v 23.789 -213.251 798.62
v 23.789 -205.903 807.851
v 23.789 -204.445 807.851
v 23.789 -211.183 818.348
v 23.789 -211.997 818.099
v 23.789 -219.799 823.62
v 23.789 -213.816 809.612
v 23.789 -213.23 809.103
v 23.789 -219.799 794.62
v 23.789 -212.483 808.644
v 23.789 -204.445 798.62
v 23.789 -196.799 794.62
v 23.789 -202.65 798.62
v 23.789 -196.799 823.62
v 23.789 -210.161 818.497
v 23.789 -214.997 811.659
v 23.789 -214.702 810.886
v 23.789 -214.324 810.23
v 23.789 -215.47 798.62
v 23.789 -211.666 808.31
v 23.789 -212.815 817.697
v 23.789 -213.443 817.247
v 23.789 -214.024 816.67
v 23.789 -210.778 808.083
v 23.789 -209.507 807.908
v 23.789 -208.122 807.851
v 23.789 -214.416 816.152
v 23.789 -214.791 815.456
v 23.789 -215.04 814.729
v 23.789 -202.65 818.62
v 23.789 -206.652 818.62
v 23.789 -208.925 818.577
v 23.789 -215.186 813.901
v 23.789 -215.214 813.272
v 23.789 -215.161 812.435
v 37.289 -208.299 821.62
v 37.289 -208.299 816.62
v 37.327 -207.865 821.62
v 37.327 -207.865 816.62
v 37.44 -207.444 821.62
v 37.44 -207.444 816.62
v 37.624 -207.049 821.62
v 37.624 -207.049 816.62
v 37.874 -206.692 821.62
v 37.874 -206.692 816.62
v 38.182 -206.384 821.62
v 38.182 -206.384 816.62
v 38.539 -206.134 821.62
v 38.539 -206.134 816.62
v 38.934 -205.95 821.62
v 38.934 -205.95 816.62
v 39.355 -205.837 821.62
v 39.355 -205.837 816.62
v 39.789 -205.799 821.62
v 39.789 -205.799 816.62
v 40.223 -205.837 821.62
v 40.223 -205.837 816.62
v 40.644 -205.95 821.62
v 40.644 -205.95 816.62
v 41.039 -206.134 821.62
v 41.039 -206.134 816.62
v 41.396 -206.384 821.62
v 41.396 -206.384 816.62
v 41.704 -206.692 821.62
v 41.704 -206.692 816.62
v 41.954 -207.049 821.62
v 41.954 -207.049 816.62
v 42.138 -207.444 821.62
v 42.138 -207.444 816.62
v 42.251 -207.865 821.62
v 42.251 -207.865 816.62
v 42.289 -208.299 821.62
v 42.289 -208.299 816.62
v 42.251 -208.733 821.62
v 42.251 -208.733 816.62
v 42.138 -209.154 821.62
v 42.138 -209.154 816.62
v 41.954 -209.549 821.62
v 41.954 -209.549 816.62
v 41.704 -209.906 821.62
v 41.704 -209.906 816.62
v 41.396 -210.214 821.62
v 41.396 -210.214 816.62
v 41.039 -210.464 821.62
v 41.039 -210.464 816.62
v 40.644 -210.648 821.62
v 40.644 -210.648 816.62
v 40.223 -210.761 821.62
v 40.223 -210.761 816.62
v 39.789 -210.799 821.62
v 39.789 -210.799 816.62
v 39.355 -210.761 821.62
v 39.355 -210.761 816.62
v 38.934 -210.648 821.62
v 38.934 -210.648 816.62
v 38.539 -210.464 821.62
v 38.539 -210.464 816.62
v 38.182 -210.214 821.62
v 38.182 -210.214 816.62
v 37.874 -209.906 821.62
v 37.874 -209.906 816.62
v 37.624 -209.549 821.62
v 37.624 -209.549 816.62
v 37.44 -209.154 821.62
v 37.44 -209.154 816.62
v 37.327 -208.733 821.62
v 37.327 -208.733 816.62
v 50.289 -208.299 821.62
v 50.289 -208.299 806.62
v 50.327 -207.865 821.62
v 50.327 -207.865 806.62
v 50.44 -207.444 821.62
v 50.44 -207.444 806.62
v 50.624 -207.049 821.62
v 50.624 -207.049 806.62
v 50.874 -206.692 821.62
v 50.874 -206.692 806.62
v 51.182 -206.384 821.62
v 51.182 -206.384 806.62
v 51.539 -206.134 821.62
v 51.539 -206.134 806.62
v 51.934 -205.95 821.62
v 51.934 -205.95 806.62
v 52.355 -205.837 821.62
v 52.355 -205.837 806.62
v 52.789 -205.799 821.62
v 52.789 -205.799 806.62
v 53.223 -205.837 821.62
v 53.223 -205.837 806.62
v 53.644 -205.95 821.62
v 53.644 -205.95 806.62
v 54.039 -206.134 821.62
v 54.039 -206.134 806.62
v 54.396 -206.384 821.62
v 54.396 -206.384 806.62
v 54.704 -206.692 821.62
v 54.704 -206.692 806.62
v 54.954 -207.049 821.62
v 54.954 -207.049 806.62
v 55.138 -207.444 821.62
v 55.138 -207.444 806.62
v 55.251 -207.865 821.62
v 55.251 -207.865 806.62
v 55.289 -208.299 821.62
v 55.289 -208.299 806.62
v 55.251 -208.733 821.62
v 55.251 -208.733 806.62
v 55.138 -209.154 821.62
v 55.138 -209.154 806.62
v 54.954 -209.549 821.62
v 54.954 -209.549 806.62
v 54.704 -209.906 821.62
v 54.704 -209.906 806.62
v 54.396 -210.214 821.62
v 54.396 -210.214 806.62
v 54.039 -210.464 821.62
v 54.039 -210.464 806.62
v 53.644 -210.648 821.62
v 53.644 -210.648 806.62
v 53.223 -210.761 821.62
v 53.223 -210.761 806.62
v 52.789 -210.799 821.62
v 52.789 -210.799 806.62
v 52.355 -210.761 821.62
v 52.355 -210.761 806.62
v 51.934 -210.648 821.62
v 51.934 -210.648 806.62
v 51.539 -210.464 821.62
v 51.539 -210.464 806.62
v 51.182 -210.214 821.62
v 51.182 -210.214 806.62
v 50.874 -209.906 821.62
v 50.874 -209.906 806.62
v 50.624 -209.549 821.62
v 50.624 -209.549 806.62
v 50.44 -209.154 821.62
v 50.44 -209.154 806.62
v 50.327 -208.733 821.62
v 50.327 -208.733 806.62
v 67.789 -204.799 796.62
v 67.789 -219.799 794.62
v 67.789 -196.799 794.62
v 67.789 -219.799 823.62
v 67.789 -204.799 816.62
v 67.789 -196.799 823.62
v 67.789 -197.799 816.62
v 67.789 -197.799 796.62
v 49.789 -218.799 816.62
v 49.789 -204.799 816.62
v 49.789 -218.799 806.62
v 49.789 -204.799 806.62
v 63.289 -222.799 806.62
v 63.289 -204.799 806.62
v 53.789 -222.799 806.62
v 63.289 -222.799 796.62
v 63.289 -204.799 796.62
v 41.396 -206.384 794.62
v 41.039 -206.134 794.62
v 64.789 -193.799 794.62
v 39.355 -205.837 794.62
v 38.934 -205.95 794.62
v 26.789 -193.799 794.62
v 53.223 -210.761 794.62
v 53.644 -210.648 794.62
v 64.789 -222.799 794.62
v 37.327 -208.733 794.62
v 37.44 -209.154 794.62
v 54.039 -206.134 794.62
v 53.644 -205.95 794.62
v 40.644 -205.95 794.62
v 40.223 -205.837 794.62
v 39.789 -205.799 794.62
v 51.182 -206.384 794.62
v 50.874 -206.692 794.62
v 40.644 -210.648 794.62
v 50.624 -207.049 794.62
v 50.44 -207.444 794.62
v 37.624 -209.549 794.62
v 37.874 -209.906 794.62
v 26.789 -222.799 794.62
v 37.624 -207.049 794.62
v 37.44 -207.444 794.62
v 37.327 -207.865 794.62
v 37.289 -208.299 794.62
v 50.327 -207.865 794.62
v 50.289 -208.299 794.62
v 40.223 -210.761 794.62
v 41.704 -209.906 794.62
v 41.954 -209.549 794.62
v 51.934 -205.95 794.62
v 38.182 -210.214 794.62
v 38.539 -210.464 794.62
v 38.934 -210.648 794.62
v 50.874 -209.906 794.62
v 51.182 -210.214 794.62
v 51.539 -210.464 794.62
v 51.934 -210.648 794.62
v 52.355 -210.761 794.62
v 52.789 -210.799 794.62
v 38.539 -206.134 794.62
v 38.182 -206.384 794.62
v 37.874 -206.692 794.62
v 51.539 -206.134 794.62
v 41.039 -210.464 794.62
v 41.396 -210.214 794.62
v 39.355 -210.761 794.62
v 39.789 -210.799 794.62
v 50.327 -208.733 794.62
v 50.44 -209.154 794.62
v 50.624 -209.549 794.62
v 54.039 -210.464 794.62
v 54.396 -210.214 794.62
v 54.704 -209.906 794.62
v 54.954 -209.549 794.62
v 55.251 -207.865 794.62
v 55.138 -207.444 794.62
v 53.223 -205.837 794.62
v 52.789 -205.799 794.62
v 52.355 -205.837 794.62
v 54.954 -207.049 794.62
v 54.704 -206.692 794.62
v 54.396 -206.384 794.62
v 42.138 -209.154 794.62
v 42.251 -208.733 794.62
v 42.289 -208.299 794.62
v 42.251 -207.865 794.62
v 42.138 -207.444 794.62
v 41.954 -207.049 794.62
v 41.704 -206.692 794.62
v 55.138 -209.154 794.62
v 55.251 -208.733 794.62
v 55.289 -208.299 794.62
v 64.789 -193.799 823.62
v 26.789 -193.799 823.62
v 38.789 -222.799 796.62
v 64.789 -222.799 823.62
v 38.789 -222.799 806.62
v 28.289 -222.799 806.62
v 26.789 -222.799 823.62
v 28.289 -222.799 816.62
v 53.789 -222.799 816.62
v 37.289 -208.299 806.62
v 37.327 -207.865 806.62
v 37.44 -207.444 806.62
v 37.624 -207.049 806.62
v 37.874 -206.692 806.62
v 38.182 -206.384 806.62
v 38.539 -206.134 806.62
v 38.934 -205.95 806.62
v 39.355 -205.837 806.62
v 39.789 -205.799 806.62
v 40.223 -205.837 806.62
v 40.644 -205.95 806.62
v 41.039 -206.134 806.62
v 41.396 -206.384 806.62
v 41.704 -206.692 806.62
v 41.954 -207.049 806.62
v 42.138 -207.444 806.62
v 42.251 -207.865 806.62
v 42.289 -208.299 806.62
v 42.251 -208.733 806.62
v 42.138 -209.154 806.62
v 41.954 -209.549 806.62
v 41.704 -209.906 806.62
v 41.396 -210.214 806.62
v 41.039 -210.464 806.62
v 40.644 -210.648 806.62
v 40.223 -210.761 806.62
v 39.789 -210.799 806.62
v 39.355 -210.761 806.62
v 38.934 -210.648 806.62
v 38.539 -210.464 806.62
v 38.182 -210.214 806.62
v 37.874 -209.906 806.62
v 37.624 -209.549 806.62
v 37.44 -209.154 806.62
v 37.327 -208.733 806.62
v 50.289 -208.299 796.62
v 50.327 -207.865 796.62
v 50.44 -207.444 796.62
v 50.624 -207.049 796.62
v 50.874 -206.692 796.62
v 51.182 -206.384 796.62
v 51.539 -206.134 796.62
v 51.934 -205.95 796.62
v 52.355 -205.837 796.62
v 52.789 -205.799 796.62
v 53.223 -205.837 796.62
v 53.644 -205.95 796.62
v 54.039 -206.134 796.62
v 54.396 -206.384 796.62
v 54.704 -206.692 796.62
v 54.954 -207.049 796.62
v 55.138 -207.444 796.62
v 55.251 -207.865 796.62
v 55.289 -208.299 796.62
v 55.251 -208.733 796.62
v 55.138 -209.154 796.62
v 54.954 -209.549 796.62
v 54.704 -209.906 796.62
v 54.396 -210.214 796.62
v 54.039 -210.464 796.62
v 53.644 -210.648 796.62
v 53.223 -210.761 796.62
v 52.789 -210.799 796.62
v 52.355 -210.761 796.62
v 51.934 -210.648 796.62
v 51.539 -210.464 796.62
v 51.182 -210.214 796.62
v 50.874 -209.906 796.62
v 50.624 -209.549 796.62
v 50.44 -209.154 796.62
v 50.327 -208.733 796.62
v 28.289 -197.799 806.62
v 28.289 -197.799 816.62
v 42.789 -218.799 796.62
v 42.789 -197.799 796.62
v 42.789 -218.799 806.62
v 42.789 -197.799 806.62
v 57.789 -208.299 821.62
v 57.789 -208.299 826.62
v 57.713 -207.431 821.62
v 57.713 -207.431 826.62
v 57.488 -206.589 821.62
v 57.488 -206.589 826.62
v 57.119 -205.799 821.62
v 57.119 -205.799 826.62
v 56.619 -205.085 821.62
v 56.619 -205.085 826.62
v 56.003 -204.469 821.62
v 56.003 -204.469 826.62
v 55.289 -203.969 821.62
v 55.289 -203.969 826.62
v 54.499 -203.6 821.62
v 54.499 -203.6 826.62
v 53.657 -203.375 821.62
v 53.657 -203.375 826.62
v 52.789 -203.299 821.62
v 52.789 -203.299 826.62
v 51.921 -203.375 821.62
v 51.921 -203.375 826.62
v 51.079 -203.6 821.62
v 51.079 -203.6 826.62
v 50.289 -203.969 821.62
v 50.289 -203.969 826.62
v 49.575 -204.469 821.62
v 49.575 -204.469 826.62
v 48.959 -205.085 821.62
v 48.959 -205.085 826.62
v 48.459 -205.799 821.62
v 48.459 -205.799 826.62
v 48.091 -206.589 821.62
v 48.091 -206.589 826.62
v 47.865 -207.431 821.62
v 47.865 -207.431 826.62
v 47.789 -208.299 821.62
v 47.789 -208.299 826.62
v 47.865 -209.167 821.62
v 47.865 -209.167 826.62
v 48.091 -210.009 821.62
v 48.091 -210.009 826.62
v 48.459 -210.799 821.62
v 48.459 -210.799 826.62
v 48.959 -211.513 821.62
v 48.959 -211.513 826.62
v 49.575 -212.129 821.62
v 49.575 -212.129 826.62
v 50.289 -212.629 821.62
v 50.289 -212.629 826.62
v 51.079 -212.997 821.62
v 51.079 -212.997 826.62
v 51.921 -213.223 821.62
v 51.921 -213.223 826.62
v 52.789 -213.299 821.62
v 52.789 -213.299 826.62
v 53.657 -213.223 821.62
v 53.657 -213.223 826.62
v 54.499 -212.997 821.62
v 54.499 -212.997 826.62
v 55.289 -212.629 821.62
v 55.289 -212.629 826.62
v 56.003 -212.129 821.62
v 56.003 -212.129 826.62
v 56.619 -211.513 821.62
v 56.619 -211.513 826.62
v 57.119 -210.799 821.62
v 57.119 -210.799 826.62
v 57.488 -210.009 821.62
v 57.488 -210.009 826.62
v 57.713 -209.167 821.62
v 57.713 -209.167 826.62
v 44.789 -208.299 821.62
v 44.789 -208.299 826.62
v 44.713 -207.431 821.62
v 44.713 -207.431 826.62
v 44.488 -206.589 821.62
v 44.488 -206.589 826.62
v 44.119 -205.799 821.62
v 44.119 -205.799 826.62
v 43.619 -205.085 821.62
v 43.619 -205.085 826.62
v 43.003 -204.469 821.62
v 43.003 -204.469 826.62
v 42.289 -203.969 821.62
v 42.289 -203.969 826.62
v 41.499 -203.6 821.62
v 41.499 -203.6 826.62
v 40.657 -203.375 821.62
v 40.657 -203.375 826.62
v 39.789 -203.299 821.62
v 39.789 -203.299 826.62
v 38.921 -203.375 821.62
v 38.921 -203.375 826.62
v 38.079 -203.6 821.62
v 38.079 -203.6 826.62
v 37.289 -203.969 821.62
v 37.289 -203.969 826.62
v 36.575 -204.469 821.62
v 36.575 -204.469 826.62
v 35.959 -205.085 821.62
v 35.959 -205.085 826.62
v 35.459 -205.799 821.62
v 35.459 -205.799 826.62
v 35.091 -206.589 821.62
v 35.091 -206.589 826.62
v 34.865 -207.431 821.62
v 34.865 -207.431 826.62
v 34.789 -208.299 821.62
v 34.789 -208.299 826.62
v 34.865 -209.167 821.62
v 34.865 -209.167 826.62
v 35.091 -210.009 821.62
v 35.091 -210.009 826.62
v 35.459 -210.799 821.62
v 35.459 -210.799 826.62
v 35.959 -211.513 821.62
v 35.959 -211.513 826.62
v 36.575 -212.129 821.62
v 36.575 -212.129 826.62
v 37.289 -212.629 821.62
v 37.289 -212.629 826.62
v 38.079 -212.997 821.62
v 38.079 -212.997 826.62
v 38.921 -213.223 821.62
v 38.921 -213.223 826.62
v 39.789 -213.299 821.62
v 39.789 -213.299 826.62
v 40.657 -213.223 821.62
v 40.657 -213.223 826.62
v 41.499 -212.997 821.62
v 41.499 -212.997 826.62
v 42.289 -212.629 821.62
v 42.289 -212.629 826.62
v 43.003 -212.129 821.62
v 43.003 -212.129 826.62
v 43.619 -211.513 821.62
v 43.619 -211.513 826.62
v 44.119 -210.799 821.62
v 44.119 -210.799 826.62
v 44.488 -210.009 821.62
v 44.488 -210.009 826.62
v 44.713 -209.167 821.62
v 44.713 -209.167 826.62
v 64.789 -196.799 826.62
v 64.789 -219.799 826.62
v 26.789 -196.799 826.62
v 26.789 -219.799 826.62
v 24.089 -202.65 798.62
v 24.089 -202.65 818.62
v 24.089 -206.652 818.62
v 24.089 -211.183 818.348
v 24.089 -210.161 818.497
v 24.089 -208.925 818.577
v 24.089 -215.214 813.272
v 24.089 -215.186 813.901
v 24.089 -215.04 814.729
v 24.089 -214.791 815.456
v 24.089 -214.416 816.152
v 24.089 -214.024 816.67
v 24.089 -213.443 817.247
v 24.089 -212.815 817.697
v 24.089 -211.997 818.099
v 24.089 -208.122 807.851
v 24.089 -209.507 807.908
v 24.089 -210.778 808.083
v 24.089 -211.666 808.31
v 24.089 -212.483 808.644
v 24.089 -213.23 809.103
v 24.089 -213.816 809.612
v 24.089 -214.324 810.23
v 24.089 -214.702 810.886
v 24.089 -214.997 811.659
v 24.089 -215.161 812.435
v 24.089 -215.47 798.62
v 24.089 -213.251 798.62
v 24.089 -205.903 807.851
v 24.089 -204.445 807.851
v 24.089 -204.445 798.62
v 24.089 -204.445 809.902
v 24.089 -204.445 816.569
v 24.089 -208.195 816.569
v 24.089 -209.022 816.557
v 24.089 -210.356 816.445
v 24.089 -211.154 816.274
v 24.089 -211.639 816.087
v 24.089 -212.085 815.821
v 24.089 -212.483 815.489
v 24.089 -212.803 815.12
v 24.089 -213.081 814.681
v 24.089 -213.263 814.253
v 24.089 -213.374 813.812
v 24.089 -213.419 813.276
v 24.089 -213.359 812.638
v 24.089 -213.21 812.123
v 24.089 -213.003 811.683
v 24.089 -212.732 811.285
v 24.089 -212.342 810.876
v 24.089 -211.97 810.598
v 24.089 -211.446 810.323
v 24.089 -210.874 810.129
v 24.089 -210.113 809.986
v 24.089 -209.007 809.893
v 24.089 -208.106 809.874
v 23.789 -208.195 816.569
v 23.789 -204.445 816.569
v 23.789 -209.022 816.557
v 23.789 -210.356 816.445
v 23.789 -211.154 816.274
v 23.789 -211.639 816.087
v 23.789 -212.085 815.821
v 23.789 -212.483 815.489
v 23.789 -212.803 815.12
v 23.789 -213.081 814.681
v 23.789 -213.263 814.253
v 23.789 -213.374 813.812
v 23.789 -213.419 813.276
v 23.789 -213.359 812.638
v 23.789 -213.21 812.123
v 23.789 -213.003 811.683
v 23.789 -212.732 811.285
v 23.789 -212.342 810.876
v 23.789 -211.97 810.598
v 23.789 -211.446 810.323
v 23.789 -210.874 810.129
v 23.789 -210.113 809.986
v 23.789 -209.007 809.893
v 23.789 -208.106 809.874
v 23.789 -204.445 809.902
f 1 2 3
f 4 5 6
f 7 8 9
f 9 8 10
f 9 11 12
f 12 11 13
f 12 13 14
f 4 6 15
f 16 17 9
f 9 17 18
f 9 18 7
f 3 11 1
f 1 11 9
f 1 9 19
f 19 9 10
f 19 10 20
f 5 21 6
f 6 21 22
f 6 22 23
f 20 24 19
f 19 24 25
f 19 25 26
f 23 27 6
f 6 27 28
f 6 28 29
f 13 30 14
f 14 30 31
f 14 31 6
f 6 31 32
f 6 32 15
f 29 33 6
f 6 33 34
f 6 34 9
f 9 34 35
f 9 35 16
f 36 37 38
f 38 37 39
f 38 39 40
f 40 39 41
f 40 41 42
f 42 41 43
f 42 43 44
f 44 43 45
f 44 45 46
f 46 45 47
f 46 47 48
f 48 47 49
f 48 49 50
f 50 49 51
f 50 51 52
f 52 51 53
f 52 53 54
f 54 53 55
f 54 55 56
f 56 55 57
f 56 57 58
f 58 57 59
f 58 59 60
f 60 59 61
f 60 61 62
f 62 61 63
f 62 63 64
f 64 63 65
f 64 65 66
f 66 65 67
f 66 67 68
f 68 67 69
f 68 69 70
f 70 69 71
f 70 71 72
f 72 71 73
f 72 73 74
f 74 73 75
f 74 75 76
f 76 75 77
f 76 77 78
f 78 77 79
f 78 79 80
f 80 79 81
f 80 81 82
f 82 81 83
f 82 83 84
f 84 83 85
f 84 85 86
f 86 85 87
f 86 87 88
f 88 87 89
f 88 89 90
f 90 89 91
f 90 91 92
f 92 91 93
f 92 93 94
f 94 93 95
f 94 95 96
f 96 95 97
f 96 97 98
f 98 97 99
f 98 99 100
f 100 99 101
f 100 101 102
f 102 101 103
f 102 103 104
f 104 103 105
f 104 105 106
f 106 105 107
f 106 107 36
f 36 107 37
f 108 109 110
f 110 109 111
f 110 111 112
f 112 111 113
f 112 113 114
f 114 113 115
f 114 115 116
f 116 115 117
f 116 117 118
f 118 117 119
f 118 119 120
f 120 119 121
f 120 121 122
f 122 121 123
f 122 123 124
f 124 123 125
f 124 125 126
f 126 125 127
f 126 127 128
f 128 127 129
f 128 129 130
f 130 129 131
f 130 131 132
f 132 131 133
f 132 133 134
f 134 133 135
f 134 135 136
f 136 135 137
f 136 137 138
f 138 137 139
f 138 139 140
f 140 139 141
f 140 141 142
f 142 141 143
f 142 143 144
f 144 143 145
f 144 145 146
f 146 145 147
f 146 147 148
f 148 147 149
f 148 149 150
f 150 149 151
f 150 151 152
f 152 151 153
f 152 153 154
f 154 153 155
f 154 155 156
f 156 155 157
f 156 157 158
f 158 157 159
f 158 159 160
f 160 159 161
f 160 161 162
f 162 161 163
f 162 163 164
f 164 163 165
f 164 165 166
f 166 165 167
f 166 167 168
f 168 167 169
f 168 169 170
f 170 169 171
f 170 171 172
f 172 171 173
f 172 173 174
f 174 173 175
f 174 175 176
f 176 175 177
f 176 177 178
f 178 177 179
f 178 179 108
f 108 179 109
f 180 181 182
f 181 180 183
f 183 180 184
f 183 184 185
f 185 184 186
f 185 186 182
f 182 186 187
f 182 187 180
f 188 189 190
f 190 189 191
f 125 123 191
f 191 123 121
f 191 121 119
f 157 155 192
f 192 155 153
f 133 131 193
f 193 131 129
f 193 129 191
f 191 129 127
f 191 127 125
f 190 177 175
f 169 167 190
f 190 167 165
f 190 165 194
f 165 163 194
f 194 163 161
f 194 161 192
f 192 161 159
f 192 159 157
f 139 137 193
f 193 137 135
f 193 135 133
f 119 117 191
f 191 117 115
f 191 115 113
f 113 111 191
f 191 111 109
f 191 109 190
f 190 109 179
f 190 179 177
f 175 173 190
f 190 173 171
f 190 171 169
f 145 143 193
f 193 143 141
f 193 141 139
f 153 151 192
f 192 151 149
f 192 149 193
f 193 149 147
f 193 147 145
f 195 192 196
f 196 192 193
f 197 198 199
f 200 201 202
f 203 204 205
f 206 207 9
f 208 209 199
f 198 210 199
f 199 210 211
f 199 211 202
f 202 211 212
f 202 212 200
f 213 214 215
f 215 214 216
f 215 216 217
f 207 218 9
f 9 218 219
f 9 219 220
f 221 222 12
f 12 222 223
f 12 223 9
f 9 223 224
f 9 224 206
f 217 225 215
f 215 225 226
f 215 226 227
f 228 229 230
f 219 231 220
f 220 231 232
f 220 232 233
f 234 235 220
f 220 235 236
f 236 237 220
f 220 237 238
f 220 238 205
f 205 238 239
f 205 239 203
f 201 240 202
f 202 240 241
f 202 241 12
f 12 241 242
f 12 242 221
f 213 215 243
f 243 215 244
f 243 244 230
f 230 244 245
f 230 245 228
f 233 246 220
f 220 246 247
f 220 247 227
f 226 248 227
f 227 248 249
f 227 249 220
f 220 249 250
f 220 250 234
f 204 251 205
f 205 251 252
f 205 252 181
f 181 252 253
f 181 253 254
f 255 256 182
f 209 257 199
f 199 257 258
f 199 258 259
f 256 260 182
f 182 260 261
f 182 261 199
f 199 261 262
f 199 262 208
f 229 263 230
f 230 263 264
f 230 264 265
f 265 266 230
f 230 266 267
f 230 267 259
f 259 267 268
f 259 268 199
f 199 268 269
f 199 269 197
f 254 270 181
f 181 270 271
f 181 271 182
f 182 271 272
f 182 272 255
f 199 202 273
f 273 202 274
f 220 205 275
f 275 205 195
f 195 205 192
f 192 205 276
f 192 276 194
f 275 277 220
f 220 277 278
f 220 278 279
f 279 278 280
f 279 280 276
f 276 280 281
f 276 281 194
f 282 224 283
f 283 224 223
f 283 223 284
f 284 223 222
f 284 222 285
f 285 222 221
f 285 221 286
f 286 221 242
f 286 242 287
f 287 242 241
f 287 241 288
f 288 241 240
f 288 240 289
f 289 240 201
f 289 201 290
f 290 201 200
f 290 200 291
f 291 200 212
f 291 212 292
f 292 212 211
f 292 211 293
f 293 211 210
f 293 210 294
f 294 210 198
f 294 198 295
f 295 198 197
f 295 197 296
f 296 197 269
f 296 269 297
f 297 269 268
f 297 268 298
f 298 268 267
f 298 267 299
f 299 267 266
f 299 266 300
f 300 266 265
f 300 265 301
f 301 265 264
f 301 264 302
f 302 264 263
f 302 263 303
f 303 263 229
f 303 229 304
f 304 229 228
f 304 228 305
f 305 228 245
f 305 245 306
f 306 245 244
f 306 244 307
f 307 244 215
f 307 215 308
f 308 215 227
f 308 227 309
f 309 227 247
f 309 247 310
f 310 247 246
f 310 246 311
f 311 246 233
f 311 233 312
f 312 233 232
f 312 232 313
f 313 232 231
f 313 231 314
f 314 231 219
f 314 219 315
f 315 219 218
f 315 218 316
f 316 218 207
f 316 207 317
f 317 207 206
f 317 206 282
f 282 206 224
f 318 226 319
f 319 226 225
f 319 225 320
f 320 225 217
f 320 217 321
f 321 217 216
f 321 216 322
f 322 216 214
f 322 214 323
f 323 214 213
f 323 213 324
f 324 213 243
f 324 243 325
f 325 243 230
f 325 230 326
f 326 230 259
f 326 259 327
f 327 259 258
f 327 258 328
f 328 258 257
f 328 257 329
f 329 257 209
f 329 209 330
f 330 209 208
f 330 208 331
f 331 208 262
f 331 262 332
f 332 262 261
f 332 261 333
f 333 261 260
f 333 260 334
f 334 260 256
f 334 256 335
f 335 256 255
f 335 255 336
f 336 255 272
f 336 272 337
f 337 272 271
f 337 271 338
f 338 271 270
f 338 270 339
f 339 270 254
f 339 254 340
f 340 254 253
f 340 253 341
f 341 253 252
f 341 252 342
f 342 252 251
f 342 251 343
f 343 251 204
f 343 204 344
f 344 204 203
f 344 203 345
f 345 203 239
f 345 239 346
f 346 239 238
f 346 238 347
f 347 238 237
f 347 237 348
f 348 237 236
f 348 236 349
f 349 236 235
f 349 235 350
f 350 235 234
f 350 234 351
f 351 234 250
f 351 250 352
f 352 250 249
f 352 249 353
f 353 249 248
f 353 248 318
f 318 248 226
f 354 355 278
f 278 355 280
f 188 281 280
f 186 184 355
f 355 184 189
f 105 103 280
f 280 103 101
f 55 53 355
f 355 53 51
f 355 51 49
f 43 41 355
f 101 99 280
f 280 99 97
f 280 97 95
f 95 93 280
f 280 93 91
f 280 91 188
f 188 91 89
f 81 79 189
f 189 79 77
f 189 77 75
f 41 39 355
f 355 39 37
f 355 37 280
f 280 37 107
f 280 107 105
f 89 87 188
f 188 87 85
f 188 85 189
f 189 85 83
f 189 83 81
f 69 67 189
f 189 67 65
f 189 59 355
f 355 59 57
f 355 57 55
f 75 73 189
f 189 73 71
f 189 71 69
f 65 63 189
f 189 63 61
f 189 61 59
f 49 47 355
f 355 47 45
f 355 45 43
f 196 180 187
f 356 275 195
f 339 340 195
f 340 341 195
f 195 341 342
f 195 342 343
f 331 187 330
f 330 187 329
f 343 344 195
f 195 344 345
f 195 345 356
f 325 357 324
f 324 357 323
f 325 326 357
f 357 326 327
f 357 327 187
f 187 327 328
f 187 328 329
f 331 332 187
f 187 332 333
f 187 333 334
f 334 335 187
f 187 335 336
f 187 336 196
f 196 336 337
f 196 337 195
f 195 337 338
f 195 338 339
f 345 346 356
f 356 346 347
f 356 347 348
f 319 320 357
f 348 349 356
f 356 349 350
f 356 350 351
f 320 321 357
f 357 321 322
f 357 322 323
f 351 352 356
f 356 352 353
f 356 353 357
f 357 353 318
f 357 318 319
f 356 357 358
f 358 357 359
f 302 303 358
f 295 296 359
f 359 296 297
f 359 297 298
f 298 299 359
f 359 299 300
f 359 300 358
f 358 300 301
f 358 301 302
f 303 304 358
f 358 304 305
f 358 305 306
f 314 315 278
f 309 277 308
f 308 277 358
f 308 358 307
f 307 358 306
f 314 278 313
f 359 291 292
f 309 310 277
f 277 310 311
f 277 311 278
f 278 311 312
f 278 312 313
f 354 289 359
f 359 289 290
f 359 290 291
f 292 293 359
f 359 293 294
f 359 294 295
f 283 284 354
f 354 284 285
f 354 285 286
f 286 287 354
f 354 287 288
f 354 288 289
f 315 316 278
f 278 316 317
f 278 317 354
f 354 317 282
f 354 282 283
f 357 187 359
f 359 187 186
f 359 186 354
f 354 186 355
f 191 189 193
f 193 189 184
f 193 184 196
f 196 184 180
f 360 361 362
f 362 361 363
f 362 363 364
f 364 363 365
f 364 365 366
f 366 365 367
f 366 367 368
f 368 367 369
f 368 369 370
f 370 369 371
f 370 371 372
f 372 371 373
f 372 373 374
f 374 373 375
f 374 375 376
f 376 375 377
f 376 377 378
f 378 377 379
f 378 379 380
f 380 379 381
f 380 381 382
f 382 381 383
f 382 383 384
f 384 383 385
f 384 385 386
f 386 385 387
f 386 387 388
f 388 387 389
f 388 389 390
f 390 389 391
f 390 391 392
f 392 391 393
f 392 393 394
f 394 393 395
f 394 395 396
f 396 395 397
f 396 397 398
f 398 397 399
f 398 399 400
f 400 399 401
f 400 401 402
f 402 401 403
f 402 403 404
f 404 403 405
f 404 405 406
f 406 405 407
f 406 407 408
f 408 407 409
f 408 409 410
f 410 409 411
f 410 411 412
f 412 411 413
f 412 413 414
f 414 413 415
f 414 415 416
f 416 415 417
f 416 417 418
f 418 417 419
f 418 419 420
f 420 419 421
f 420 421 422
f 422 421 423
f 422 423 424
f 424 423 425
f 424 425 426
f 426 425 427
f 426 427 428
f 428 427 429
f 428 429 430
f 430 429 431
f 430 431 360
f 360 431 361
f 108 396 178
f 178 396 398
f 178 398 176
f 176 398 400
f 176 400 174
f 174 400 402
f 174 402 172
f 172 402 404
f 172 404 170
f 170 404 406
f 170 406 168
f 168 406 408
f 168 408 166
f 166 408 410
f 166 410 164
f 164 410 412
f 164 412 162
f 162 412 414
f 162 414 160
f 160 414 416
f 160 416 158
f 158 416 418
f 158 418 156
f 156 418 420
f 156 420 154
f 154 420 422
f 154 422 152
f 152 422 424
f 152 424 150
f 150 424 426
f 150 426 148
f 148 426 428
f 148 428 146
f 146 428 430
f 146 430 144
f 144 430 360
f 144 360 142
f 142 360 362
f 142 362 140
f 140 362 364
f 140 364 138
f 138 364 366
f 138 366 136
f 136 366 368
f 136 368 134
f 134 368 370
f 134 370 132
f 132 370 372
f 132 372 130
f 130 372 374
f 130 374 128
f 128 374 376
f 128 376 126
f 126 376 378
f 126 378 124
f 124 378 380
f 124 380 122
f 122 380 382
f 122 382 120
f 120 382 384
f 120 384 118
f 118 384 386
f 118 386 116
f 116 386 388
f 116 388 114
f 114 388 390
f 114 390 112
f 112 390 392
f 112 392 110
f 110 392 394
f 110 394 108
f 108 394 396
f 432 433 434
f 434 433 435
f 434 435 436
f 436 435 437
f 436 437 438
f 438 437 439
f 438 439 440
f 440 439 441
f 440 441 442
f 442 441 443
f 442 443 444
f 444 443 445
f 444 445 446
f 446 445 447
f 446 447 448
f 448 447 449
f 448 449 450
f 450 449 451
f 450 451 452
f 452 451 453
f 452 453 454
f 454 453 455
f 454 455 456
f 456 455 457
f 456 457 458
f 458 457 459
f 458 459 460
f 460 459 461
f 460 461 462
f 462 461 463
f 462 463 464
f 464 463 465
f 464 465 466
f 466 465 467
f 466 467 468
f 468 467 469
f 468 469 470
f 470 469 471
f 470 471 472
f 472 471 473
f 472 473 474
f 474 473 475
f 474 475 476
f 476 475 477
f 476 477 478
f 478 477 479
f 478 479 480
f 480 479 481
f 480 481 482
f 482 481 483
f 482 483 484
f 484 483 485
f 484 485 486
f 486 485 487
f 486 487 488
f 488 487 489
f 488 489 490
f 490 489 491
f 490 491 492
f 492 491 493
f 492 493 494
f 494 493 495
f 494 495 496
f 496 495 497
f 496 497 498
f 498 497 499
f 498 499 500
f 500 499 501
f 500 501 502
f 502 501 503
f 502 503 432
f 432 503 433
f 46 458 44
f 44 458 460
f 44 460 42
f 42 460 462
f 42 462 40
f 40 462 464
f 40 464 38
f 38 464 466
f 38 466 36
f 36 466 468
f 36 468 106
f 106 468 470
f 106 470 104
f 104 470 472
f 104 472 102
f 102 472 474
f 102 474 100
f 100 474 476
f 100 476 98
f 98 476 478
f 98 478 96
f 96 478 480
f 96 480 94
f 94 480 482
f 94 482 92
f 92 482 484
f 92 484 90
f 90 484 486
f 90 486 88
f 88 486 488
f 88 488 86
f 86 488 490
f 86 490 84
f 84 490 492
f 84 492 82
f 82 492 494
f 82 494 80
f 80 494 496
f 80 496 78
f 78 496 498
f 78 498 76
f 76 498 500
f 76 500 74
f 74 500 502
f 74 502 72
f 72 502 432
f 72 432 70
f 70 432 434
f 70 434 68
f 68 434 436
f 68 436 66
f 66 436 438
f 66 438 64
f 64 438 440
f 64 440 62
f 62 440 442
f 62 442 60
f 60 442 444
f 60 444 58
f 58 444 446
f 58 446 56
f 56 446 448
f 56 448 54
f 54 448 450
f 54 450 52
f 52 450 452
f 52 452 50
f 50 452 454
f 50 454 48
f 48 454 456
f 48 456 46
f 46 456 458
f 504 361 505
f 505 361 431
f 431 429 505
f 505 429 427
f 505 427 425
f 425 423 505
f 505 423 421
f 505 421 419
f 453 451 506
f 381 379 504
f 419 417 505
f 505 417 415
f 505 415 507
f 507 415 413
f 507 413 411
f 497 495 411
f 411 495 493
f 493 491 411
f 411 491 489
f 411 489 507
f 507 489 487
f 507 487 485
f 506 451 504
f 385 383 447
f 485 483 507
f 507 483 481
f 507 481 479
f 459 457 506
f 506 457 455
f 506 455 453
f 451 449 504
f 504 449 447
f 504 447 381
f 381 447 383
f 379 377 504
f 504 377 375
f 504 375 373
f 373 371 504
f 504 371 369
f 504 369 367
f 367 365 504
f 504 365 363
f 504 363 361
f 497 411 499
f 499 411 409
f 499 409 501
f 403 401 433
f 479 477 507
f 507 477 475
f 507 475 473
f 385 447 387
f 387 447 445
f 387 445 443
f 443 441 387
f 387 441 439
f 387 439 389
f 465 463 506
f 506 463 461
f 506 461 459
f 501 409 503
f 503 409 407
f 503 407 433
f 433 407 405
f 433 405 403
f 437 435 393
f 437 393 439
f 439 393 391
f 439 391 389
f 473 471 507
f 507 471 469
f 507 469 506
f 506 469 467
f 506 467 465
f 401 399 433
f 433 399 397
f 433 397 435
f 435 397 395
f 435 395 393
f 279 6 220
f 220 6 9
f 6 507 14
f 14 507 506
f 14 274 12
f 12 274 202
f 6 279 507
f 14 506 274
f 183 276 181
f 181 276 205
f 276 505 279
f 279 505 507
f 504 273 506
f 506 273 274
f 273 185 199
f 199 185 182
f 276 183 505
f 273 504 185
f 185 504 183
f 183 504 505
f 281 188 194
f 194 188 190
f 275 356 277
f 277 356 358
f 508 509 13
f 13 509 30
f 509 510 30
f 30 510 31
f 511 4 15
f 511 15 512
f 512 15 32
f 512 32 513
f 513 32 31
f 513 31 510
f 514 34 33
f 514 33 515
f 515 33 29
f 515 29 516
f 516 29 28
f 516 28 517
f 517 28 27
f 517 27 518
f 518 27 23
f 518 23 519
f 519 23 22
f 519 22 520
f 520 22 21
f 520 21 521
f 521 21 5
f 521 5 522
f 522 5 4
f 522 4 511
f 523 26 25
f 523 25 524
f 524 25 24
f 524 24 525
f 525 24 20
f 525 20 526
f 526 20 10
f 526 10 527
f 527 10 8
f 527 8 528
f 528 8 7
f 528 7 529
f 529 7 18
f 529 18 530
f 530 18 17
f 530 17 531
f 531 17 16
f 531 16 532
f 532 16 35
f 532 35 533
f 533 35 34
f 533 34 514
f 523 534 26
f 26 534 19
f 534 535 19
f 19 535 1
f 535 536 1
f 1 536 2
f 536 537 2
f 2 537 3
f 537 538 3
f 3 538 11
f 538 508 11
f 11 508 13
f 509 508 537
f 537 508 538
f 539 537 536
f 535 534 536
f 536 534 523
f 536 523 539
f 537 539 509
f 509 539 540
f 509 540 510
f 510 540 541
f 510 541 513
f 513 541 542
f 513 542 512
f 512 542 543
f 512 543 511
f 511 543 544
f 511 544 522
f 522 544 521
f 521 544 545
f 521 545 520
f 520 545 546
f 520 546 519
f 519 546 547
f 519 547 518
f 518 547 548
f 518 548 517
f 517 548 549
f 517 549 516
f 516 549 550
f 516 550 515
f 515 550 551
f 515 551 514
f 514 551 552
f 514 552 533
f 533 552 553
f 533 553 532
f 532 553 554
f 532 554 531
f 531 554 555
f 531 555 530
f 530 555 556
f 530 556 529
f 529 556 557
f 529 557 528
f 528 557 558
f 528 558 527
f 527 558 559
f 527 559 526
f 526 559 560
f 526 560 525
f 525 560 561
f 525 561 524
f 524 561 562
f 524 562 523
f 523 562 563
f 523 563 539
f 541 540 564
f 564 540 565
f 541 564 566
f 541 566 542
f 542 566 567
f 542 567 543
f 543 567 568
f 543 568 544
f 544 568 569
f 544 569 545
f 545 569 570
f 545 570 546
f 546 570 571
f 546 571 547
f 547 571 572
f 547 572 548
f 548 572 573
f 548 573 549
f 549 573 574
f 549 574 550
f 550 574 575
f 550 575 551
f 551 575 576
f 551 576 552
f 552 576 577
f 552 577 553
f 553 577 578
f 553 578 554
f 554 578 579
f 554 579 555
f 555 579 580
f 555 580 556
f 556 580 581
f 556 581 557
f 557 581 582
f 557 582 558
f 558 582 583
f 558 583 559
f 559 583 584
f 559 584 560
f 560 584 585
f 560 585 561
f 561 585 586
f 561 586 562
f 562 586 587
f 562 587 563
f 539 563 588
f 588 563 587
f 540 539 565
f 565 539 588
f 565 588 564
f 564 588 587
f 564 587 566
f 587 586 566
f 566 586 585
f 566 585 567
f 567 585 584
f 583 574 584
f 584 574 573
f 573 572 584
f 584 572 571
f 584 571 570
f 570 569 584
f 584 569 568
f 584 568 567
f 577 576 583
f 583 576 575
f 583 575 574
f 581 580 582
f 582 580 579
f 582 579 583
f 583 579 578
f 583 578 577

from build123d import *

# Parameters (mm, degrees)
SKETCH1_W           = 44
SKETCH1_H           = 29
SKETCH1_R           = 2.5
BOSS_EXTRUDE1_DEPTH = 30
CUT_EXTRUDE1_DEPTH  = 25
SKETCH3_W           = 20
SKETCH3_H           = 7
CUT_EXTRUDE2_DEPTH  = 29
SKETCH4_R           = 5
CUT_EXTRUDE3_DEPTH  = 3
THICKEN1_T1         = 2
CHAMFER1_SIZE       = 3
CHAMFER2_SIZE       = 4
CUT_EXTRUDE4_DEPTH  = 0.3


with BuildPart() as part:
    # Sketch1 → Boss-Extrude1 (new body)
    with BuildSketch(Plane.XY.offset(794.620141885)):
        with Locations((45.789156386, -208.298939869)):
            Rectangle(SKETCH1_W, SKETCH1_H)
        with Locations((52.789156386, -208.298939869)):
            Circle(SKETCH1_R, mode=Mode.SUBTRACT)
        with Locations((39.789156386, -208.298939869)):
            Circle(SKETCH1_R, mode=Mode.SUBTRACT)
    extrude(amount=BOSS_EXTRUDE1_DEPTH)

    # Sketch2 → Cut-Extrude1 (cut)
    with BuildSketch(Plane.XZ.offset(222.798939869)):
        Polygon((28.289156386, 816.620141885), (49.789156386, 816.620141885), (49.789156386, 806.620141885), (63.289156386, 806.620141885), (63.289156386, 796.620141885), (42.789156386, 796.620141885), (42.789156386, 806.620141885), (28.289156386, 806.620141885), align=None)
    extrude(amount=-CUT_EXTRUDE1_DEPTH, mode=Mode.SUBTRACT)

    # Sketch3 → Cut-Extrude2 (cut)
    with BuildSketch(Plane(origin=(42.789156386, 0, 0), x_dir=(0, 0, -1), z_dir=(1, 0, 0))):
        with Locations((-806.620141885, -201.298939869)):
            Rectangle(SKETCH3_W, SKETCH3_H)
    extrude(amount=CUT_EXTRUDE2_DEPTH, mode=Mode.SUBTRACT)

    # Sketch4 → Cut-Extrude3 (cut)
    with BuildSketch(Plane.XY.offset(824.620141885)):
        with Locations((39.789156386, -208.298939869)):
            Circle(SKETCH4_R)
        with Locations((52.789156386, -208.298939869)):
            Circle(SKETCH4_R)
    extrude(amount=-CUT_EXTRUDE3_DEPTH, mode=Mode.SUBTRACT)

    # Surface-Offset1: a surface, a copy of 1 face of the part
    surface_offset1_1 = part.part.faces().sort_by_distance((45.718963888, -208.298939869, 824.620141885))[0]
    add(Solid.thicken(surface_offset1_1, THICKEN1_T1))

    # Chamfer1
    chamfer1_edges = [part.edges().sort_by_distance(p)[0] for p in [
        (67.789156386, -222.798939869, 810.620141885),
        (23.789156386, -222.798939869, 810.620141885),
        (23.789156386, -193.798939869, 810.620141885),
        (67.789156386, -193.798939869, 810.620141885),
        (67.789156386, -208.298939869, 826.620141885),
        (45.789156386, -193.798939869, 826.620141885),
        (23.789156386, -208.298939869, 826.620141885),
        (45.789156386, -222.798939869, 826.620141885),
    ]]
    chamfer(chamfer1_edges, length=CHAMFER1_SIZE)

    # Chamfer2
    chamfer2_edges = [part.edges().sort_by_distance(p)[0] for p in [
        (42.789156386, -222.798939869, 801.620141885),
        (49.789156386, -222.798939869, 811.620141885),
    ]]
    chamfer(chamfer2_edges, length=CHAMFER2_SIZE)

    # Sketch5 → Cut-Extrude4 (cut)
    with BuildSketch(Plane.ZY.offset(-23.789156386)):
        with BuildLine():
            Line((818.620141885, -202.649682189), (818.620141885, -206.652086035))
            add(Edge.make_bspline(
                [(818.620141885, -206.652086035), (818.619252822, -206.919178198), (818.617545723, -207.432024737), (818.608027078, -208.166729139), (818.580745045, -208.834312551), (818.557267425, -209.434425918), (818.514456332, -209.967058232), (818.473538348, -210.433842751), (818.419974572, -210.832629594), (818.370229298, -211.074034458), (818.347705987, -211.183336035)],
                knots=[0, 0, 0, 0, 1.410062039, 2.707475311, 3.878576406, 4.937260626, 5.877586885, 6.699081471, 7.410979367, 8, 8, 8, 8], degree=3))
            add(Edge.make_bspline(
                [(818.347705987, -211.183336035), (818.311557144, -211.329662179), (818.240030609, -211.619192932), (818.088773389, -212.036013061), (817.914023625, -212.43337572), (817.707180436, -212.809789724), (817.471851613, -213.165289992), (817.206662217, -213.499344244), (816.910261737, -213.810042595), (816.590218995, -214.099775718), (816.243741522, -214.36240947), (815.875876555, -214.589684619), (815.488924875, -214.784299189), (815.081538972, -214.939665852), (814.657162625, -215.06465357), (814.212090229, -215.15281158), (813.748311447, -215.205673278), (813.431980786, -215.211055618), (813.271584192, -215.213784753)],
                knots=[0, 0, 0, 0, 1.02737288, 2.032829108, 3.019628684, 3.985738875, 4.958353778, 5.924249254, 6.890702889, 7.883913451, 8.865824512, 9.85161466, 10.829249435, 11.81541824, 12.821369441, 13.843154991, 14.906364023, 16, 16, 16, 16], degree=3))
            add(Edge.make_bspline(
                [(813.271584192, -215.213784753), (813.005097574, -215.205390696), (812.485113159, -215.189011716), (811.730483834, -215.036293795), (811.02652923, -214.786153381), (810.374229006, -214.441407876), (809.785954605, -214.002591168), (809.271001623, -213.47523327), (808.836100367, -212.862027363), (808.537719774, -212.288492765), (808.345728912, -211.781622), (808.209965299, -211.3631096), (808.106839718, -210.906236663), (808.013112973, -210.417557724), (807.941591938, -209.893298179), (807.89079841, -209.334513757), (807.858137784, -208.739806906), (807.853365927, -208.332151125), (807.850911115, -208.122438599)],
                knots=[0, 0, 0, 0, 1.260402266, 2.459371274, 3.627181936, 4.786749125, 5.93865593, 7.087644312, 8.261344208, 9.485713728, 10.136162886, 10.825977872, 11.566646758, 12.35154167, 13.181268117, 14.0701832, 15.007234106, 16, 16, 16, 16], degree=3))
            Line((807.850911115, -208.122438599), (798.620141885, -215.470195009))
            Line((798.620141885, -215.470195009), (798.620141885, -213.250643727))
            Line((798.620141885, -213.250643727), (807.850911115, -205.902887317))
            Line((807.850911115, -205.902887317), (807.850911115, -204.444553983))
            Line((807.850911115, -204.444553983), (798.620141885, -204.444553983))
            Line((798.620141885, -204.444553983), (798.620141885, -202.649682189))
            Line((798.620141885, -202.649682189), (818.620141885, -202.649682189))
        make_face()
        with BuildLine():
            Line((816.568859833, -204.444553983), (809.902193167, -204.444553983))
            Line((809.902193167, -204.444553983), (809.874148295, -208.106412958))
            add(Edge.make_bspline(
                [(809.874148295, -208.106412958), (809.874072657, -208.277384608), (809.87392605, -208.608776362), (809.896747622, -209.088208742), (809.922709465, -209.534609347), (809.962419927, -209.946270897), (810.013597756, -210.323376683), (810.077613908, -210.665740215), (810.152200057, -210.973913839), (810.26762556, -211.333350133), (810.45060064, -211.734593079), (810.716361518, -212.17119904), (811.052793662, -212.541742888), (811.431384321, -212.861223503), (811.85619796, -213.107304946), (812.308378702, -213.286409063), (812.784022722, -213.398806876), (813.110718973, -213.412169388), (813.275590603, -213.418912958)],
                knots=[0, 0, 0, 0, 1.14660753, 2.222451964, 3.218720504, 4.145691244, 4.995719623, 5.770487122, 6.480909919, 7.121111896, 8.299844659, 9.430703709, 10.534634535, 11.641396424, 12.741395289, 13.810956493, 14.895269934, 16, 16, 16, 16], degree=3))
            add(Edge.make_bspline(
                [(813.275590603, -213.418912958), (813.436472769, -213.412148659), (813.755282519, -213.398744286), (814.220730727, -213.286191288), (814.663169936, -213.104434652), (815.074166958, -212.849569783), (815.450349769, -212.541604679), (815.767772153, -212.175850326), (816.033594898, -211.77072656), (816.20222429, -211.391811004), (816.305816002, -211.053364398), (816.378622654, -210.759466647), (816.43761036, -210.426125104), (816.483472188, -210.054138637), (816.524742591, -209.644180232), (816.551501228, -209.195127342), (816.567674152, -208.707498527), (816.568455408, -208.369514628), (816.568859833, -208.194553983)],
                knots=[0, 0, 0, 0, 1.100801541, 2.181386982, 3.260112282, 4.364594493, 5.481957178, 6.577424609, 7.668452592, 8.790448866, 9.403819393, 10.091598921, 10.863153553, 11.720938239, 12.658472417, 13.685008818, 14.801622349, 16, 16, 16, 16], degree=3))
            Line((816.568859833, -208.194553983), (816.568859833, -204.444553983))
        make_face(mode=Mode.SUBTRACT)
    extrude(amount=-CUT_EXTRUDE4_DEPTH, mode=Mode.SUBTRACT)


solid = part.part
